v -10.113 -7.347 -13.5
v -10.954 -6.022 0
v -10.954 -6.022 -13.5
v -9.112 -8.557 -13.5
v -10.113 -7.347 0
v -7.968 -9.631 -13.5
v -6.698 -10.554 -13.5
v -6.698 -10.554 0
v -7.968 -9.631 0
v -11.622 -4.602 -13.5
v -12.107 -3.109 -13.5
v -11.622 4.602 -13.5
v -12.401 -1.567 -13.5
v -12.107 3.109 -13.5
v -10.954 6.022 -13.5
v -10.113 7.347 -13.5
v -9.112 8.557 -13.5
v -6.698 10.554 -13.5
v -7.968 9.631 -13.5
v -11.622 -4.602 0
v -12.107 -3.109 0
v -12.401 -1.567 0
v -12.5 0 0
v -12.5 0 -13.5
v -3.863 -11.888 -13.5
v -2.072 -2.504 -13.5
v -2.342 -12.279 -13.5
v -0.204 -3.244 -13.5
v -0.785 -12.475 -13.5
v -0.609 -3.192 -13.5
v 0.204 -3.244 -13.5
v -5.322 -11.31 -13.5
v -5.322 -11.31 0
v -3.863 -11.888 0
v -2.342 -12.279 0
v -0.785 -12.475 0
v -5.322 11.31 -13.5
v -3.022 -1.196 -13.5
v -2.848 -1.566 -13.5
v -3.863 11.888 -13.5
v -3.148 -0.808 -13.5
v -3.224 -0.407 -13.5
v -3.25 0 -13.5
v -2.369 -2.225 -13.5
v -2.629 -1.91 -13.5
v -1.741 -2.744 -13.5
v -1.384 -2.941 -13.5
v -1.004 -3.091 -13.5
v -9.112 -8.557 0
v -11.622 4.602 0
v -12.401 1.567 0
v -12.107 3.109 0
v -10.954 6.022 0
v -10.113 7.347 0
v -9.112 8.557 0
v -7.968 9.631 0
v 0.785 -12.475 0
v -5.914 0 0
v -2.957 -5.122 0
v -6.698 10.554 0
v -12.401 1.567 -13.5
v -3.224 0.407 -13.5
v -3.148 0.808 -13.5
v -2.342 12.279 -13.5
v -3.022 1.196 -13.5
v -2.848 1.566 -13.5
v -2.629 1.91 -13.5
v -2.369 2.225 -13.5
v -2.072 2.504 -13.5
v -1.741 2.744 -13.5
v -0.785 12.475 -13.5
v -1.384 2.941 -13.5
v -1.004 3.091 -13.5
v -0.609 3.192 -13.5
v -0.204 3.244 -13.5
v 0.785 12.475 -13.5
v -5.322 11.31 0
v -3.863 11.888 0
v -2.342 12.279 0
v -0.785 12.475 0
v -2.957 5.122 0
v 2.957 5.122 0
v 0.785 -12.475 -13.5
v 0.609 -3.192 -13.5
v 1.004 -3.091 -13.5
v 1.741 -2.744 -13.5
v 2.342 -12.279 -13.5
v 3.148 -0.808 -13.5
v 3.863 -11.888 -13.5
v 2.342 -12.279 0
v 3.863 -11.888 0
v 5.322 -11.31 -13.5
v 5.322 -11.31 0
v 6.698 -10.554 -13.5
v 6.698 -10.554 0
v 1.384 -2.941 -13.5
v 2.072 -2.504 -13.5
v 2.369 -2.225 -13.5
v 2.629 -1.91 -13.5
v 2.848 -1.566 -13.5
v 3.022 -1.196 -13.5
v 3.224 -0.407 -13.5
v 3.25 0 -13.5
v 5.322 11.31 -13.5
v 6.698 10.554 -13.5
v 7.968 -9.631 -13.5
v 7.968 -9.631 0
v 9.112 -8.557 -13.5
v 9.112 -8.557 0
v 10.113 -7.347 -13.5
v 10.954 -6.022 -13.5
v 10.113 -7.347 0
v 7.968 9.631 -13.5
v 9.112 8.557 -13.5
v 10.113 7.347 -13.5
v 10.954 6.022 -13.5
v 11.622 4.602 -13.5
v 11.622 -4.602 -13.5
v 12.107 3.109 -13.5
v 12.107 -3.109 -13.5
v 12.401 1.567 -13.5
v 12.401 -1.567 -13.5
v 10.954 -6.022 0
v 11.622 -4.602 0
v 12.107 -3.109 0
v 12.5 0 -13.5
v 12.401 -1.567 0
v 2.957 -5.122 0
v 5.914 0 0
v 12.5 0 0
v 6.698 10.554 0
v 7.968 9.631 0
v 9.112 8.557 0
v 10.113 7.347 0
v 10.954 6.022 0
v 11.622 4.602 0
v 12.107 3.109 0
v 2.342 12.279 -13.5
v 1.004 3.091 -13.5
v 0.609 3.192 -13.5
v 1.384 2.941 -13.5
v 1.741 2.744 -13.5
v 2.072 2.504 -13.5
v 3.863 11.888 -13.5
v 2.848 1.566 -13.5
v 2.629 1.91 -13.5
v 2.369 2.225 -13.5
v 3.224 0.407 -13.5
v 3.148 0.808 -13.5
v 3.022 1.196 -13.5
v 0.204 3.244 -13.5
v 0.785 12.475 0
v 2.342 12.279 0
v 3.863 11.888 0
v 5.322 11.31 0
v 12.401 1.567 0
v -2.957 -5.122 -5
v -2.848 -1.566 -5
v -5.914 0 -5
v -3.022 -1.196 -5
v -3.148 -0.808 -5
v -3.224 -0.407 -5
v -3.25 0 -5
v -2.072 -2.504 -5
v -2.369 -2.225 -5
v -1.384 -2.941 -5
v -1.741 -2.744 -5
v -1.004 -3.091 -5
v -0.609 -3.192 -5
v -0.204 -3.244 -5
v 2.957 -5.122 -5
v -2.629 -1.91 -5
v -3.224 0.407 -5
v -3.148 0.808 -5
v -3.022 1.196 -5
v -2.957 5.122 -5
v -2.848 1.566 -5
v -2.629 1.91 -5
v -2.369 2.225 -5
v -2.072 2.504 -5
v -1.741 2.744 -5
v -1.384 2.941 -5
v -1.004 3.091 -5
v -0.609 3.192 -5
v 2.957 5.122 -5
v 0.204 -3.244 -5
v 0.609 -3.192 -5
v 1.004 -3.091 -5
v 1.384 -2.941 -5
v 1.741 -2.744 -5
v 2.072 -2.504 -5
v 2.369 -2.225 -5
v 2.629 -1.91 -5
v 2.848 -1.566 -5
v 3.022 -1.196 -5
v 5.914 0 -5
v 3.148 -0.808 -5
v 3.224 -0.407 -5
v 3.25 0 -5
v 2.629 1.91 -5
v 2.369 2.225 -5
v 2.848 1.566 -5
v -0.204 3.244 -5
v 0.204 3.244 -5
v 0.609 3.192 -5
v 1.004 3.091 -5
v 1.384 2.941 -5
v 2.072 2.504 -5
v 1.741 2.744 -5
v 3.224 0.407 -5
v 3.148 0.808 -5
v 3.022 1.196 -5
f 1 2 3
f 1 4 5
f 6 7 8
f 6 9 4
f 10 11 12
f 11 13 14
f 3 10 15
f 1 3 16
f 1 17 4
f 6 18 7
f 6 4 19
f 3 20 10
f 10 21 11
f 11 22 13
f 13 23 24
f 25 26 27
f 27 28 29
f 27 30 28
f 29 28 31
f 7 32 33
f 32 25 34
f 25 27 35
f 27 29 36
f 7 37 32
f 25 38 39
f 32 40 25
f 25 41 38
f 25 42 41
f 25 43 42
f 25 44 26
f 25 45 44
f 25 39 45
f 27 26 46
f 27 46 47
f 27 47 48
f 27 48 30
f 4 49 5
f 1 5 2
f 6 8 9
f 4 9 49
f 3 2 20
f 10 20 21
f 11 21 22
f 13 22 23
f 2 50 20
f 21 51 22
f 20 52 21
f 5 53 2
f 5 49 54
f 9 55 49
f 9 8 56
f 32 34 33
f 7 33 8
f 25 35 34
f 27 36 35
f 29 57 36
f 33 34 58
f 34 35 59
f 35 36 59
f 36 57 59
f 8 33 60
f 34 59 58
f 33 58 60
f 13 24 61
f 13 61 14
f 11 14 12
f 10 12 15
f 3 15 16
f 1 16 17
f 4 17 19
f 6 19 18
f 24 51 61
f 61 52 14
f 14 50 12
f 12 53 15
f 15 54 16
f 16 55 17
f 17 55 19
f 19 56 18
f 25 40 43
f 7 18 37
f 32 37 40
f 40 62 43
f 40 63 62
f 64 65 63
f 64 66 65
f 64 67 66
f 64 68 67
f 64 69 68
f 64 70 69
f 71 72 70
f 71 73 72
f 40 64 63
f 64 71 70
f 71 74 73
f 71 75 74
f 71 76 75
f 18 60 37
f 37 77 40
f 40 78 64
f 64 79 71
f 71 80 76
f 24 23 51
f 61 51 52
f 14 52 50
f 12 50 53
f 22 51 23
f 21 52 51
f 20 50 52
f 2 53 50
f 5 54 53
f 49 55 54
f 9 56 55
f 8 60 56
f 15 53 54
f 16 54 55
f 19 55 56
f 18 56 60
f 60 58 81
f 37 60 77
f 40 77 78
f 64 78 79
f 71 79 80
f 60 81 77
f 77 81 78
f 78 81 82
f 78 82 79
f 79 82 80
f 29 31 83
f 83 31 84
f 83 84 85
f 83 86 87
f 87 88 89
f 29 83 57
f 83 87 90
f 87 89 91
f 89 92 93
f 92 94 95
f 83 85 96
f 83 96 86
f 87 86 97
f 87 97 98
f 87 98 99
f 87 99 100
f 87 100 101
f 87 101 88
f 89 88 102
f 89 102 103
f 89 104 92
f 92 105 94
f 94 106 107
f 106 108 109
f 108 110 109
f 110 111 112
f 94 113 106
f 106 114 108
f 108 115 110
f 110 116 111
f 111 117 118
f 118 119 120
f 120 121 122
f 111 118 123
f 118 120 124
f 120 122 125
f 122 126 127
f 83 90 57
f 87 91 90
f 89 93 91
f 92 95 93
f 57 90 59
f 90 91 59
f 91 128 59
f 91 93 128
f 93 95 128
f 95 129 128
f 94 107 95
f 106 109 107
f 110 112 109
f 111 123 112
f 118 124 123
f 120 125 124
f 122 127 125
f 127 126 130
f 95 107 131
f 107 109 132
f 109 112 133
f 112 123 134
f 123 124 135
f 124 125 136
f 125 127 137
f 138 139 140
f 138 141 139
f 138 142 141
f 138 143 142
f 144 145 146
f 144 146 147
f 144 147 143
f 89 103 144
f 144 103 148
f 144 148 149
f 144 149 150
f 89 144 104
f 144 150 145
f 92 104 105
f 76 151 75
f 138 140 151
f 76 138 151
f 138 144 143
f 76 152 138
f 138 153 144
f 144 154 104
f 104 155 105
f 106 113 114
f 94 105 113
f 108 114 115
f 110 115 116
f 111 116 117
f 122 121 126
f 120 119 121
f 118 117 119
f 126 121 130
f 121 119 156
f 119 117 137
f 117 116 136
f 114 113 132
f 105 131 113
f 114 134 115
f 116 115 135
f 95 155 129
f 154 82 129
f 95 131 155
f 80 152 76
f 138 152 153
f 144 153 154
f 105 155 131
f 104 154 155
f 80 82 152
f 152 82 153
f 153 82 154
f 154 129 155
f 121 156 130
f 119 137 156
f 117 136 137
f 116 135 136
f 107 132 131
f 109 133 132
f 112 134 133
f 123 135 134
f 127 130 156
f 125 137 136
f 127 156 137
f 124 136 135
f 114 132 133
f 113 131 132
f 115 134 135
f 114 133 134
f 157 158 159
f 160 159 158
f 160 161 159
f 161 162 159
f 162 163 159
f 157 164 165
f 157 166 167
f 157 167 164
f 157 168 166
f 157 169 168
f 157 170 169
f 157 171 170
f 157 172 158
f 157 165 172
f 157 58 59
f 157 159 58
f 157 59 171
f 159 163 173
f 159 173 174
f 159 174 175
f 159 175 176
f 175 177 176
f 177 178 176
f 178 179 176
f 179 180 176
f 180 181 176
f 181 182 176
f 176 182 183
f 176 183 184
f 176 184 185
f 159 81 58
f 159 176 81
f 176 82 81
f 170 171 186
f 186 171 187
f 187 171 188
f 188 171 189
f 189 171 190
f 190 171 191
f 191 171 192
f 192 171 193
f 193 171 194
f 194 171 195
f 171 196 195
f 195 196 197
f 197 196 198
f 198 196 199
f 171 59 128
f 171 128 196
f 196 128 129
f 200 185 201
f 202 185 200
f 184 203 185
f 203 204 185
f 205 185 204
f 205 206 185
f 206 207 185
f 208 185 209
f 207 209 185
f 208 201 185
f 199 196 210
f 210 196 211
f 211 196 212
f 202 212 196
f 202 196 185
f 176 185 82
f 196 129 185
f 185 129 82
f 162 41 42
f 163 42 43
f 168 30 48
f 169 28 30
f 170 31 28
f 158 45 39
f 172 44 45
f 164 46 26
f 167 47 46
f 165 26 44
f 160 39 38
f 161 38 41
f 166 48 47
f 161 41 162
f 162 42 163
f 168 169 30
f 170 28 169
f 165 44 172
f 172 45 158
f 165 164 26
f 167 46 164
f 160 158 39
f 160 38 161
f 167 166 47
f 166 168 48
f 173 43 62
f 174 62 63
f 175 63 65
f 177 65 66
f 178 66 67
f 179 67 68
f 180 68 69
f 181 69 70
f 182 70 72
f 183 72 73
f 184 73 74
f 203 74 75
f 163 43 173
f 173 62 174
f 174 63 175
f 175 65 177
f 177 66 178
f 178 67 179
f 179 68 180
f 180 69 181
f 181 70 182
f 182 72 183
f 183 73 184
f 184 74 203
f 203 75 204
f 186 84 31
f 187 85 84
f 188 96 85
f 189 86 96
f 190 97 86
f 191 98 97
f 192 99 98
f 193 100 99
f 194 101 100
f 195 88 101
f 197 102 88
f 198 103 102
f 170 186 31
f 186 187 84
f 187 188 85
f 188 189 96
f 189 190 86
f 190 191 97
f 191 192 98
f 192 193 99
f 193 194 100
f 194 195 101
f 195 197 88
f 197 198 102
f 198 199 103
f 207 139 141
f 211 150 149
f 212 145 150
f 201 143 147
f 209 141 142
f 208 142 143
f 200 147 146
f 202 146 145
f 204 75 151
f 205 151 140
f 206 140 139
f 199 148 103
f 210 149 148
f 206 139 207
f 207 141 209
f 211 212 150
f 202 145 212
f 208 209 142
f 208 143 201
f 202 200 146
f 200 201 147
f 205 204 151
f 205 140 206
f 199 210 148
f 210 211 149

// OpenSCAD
$fn = 50;

difference() {
	union() {
		translate(v = [0, 0, -13.5]) {
			cylinder(h = 13.5, r = 12.5);
		}
		#translate(v = [0, 0, -15.0]) {
			cylinder(h = 15, r = 2.875);
		}
	}
	union() {
		translate(v = [0, 0, 0]) {
			rotate(a = [0, 0, 0]) {
				difference() {
					union() {
						translate(v = [0, 0, -5]) {
							linear_extrude(height = 5) {
								polygon(points = [[5.914249999999999, 0.0], [2.957125, 5.1218907443321156], [-2.9571249999999982, 5.1218907443321156], [-5.914249999999999, 7.242867331857232e-16], [-2.9571250000000022, -5.121890744332115], [2.9571249999999956, -5.121890744332118]]);
							}
						}
					}
					union();
				}
			}
		}
		#translate(v = [0, 0, -100.0]) {
			cylinder(h = 200, r = 3.25);
		}
	}
}
